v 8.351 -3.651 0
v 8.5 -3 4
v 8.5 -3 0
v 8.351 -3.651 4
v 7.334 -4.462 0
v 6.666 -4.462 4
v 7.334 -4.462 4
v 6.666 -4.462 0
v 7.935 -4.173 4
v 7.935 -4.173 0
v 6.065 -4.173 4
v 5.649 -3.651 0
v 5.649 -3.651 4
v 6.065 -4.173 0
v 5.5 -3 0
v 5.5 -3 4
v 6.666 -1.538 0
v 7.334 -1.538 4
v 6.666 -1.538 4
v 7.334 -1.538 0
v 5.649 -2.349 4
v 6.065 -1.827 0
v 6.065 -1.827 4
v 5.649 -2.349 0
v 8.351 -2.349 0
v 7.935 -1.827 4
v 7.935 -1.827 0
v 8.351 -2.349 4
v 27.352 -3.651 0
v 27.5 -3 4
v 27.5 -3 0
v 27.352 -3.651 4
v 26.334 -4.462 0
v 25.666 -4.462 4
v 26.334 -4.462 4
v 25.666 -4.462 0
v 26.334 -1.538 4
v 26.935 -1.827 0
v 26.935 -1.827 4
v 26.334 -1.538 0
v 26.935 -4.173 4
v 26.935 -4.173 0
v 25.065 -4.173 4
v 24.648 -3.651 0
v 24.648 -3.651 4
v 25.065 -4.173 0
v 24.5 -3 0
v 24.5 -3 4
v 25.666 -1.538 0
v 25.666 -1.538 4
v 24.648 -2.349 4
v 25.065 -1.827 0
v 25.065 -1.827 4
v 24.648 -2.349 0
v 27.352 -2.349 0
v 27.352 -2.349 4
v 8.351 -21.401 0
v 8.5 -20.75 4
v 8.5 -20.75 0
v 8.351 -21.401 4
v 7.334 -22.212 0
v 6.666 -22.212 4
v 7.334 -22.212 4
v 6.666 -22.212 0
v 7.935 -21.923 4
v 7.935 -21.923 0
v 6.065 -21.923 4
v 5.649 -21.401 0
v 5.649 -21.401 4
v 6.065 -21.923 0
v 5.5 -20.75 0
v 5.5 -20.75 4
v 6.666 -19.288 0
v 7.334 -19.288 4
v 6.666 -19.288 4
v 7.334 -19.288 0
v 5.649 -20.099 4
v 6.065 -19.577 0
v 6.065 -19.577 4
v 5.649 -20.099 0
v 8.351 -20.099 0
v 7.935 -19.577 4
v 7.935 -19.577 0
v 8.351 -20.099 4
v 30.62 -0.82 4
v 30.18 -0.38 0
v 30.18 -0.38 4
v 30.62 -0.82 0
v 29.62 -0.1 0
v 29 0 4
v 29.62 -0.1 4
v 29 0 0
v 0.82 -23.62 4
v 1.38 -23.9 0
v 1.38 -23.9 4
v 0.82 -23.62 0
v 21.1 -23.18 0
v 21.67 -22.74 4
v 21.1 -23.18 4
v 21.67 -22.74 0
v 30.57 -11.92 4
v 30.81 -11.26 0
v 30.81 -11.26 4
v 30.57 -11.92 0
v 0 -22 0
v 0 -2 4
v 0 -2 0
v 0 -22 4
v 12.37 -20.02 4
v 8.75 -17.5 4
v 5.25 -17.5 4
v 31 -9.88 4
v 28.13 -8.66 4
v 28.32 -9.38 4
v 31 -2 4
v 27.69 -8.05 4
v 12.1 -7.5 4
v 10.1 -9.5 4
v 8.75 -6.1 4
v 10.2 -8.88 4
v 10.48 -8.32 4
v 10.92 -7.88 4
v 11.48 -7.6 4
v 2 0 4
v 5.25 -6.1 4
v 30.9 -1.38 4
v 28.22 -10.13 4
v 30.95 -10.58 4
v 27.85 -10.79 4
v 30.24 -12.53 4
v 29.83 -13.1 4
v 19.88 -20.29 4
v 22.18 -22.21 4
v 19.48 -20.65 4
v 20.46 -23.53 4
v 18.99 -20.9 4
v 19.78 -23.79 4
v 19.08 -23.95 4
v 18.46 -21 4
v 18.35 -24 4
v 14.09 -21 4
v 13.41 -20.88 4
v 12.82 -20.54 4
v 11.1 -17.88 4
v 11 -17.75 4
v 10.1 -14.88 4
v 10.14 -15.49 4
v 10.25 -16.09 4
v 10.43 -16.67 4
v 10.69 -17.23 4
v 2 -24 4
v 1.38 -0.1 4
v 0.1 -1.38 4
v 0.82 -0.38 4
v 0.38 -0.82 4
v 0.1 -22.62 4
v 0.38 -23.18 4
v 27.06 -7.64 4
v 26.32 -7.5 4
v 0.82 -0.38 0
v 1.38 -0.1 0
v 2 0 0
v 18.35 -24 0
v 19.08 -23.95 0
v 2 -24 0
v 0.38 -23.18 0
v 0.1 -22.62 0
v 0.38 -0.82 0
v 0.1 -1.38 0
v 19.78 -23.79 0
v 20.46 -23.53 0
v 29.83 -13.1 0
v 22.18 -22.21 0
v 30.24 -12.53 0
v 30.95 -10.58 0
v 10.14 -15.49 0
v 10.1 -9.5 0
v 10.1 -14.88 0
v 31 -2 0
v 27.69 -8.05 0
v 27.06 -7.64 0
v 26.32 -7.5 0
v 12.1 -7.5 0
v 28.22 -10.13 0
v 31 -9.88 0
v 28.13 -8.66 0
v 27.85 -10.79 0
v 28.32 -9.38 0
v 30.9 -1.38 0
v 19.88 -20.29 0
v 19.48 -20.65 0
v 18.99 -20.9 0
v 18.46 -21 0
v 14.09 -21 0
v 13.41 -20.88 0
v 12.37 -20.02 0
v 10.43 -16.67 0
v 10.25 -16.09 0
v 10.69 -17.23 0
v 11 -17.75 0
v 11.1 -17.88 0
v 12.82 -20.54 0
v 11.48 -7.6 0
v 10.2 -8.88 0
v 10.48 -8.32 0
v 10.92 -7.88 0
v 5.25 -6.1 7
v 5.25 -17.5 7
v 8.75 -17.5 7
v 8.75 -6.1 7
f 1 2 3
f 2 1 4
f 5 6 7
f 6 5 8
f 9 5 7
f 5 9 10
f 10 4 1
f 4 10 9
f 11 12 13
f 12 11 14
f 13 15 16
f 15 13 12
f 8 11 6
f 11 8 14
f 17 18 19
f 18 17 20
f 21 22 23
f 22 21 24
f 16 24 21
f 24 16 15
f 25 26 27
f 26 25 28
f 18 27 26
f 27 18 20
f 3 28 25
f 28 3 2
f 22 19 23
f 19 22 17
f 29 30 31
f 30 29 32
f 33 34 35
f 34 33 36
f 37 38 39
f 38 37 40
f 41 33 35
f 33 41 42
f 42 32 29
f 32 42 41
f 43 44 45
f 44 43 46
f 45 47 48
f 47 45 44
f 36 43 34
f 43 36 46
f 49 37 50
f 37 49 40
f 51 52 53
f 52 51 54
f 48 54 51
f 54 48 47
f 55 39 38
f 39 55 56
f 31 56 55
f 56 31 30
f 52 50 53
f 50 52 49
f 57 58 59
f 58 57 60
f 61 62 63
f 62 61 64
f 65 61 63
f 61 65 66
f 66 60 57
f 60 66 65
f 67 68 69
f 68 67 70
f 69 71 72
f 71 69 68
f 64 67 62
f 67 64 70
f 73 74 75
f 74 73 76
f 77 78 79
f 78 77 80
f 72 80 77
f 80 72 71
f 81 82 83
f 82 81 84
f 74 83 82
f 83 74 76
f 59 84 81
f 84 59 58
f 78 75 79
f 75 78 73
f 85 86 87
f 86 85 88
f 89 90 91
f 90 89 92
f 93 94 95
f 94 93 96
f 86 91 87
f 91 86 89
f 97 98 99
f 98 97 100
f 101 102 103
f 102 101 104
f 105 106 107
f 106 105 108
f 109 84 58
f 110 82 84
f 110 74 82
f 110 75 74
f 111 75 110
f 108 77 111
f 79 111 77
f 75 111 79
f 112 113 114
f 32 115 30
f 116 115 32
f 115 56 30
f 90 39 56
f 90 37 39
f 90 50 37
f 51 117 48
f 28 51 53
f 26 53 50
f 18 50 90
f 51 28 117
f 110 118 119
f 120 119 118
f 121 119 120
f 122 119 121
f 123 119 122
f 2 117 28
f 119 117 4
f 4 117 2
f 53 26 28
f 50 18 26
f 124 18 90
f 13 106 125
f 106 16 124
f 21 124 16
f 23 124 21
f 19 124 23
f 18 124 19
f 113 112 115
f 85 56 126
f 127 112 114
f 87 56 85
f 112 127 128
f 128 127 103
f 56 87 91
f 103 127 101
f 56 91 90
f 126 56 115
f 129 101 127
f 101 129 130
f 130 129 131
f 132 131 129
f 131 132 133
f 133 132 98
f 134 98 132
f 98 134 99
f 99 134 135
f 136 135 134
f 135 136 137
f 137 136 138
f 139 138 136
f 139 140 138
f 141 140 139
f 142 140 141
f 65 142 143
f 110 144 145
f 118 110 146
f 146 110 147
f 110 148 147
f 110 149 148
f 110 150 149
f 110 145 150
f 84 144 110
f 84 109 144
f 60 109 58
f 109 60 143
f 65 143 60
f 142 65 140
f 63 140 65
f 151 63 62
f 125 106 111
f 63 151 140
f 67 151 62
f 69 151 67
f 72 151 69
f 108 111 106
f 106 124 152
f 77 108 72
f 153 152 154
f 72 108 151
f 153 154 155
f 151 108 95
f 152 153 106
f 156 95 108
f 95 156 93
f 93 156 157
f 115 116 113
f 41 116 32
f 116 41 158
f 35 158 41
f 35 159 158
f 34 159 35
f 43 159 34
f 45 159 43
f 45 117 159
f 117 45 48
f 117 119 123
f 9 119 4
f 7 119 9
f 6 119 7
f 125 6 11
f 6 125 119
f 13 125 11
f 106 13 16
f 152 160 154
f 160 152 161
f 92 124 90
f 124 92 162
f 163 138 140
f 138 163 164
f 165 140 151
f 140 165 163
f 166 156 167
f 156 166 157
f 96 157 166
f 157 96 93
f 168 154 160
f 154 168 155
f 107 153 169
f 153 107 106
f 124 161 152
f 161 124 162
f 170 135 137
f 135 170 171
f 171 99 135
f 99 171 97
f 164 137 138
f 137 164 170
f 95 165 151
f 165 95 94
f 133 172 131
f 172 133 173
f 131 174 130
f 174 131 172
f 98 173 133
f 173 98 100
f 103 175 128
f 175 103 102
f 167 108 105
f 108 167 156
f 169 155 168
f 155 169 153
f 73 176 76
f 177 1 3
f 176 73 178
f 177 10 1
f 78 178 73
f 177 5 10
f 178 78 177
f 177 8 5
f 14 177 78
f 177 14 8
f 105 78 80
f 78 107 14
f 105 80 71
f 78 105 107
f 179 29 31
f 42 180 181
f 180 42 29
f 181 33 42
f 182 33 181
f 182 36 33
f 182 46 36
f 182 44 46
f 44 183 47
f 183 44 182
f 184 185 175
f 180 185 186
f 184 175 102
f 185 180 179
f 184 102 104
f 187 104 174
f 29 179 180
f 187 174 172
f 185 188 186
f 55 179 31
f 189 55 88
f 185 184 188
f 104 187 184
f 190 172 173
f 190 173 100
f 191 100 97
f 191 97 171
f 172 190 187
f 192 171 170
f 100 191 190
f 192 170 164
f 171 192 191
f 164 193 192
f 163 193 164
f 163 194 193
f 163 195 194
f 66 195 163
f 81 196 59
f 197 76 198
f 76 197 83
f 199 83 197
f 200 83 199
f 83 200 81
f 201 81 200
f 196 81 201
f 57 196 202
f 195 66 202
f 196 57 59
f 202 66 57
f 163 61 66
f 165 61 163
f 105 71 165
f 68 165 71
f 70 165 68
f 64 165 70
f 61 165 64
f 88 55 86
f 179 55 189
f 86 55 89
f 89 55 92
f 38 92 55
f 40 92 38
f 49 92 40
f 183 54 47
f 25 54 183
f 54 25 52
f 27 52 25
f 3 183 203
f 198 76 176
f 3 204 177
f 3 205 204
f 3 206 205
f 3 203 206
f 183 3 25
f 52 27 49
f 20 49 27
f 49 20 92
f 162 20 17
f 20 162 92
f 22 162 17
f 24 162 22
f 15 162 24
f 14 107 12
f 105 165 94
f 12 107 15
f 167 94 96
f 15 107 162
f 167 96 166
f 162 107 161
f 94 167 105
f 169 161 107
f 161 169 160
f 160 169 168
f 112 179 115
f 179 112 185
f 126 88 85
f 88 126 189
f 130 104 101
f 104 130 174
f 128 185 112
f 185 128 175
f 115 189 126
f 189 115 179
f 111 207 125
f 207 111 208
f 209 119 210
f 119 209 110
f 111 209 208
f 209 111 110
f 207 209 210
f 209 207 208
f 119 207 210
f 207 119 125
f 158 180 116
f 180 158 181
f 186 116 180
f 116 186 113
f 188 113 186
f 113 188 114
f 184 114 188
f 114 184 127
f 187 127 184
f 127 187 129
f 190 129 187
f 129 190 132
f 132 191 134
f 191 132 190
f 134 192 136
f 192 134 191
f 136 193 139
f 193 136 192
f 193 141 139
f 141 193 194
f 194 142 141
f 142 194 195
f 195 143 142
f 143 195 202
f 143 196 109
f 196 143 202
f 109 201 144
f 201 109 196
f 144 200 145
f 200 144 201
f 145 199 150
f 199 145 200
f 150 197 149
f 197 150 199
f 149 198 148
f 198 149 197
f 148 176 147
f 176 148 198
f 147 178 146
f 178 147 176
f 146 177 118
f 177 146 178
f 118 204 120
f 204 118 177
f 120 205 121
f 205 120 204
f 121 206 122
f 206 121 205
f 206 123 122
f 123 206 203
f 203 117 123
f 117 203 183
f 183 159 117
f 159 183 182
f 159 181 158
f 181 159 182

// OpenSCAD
//FolgerTech Kossel Mini Endstop Bracket Modification
//7/8/2016      By: David Bunch
//
//From: http://www.thingiverse.com/thing:1540280
//Made it so I could change Dia. of Holes if Needed
//This is 11mm shorter than other design which should mean 11mm more height on Delta
//Changed inside cut to miss solder joints on limit switch board
//I did not have an M3x8mm bolt, so I used a M3x10mm bolt with a plastic spacer
//The M3x10mm bolt was going to far thru the T-Nut to work without the spacer
//M3x8mm bolt for T-Nut I think would work better
//I also added a little bump to fit in the extrusion to keep it in place with only 1 T-Nut
//
//I used 2x M2.5x10mm bolts & locknuts to hold switch on plastic
//1x M3x10mm bolt with plastic spacer with T-Nut (M3x8mm should work without spacer)
Ht = 4;             //Height of Base Profile
M2_5 = 3.0;         //M2.5 Bolt Diamter
M3 = 3.6;           //M3 Bolt Diameter
M2_5_Res = 14;      //Resolution of M2.5 Bolt Hole
M3_Res = 18;        //Resolution of M3 Bolt Hole
M3Nut = 6.9;        //OD to show M3, I am using M2.5, but this shows M3 should also work
module Tnut()
{
    color("silver",.5)
    translate([7,20.75,0])
    translate([-2.5,3,0-1.98])
    rotate([90,0,0])
    linear_extrude(height = 6, center = false, convexity = 10)polygon(points = 
    [[-1.07,-1.79],[6.11,-1.79],[8.01,0],[5,0],[5,1.98],
    [0,1.98],[0,0],[-2.9,0]]);
}
module Outline()
{
    union()
    {
        linear_extrude(height = Ht, center = false, convexity = 10)polygon(points = 
        [[0,22],[0,2],[0.1,1.38],[0.38,0.82],[0.82,0.38],
        [1.38,0.1],[2,0],[29,0],[29.62,0.1],[30.18,0.38],
        [30.62,0.82],[30.9,1.38],[31,2],[31,9.88],[30.95,10.58],
        [30.81,11.26],[30.57,11.92],[30.24,12.53],[29.83,13.1],[22.18,22.21],
        [21.67,22.74],[21.1,23.18],[20.46,23.53],[19.78,23.79],[19.08,23.95],
        [18.35,24],[2,24],[1.38,23.9],[0.82,23.62],[0.38,23.18],
        [0.1,22.62],[0,22]]);
        // Riggel
        translate([5.25,6.1,-3])
        cube([3.5,11.4,3.1]);
    }
}
module Cut()
{
    translate([0,0,-1])
    linear_extrude(height = Ht+2, center = false, convexity = 10)polygon(points = 
    [[10.1,14.88],[10.14,15.49],[10.25,16.09],[10.43,16.67],[10.69,17.23],
    [11,17.75],[11.1,17.88],[12.37,20.02],[12.82,20.54],[13.41,20.88],
    [14.09,21],[18.46,21],[18.99,20.9],[19.48,20.65],[19.88,20.29],
    [27.85,10.79],[28.22,10.13],[28.32,9.38],[28.13,8.66],[27.69,8.05],
    [27.06,7.64],[26.32,7.5],[12.1,7.5],[11.48,7.6],[10.92,7.88],
    [10.48,8.32],[10.2,8.88],[10.1,9.5]]);
}
module Holes()
{
//Bottom Holes
    translate([7,3,-1])
    cylinder(d=M2_5,h=Ht+2,$fn=M2_5_Res);   //Limit Switch Hole at extrusion
    translate([26,3,-1])
    cylinder(d=M2_5,h=Ht+2,$fn=M2_5_Res);   //Limit Switch Hole at far end

    translate([7,20.75,-3.5])
    cylinder(d=M2_5,h=Ht*2,$fn=M2_5_Res);     //T-Nut M3 Hole

    translate([7,3,-2])
    %cylinder(d=M3Nut,h=2,$fn=6);       //show M3 nut for reference, I used M2.5
    %Tnut();                            //Show M3 T-Nut for reference
}
module DrawBracket()
{
    translate([0,0,4])
    rotate([180,0,0])               //Print so bump is on the top
    difference()
    {
        Outline();                  //Main profile of part
        Cut();                      //Main Cut
        Holes();                    //Drill the 3 holes
    }
}
DrawBracket();                      //1st Bracket
//translate([37,0,0])
//DrawBracket();                      //2nd Bracket
//translate([0,30,0])
//DrawBracket();                      //3rd Bracket
